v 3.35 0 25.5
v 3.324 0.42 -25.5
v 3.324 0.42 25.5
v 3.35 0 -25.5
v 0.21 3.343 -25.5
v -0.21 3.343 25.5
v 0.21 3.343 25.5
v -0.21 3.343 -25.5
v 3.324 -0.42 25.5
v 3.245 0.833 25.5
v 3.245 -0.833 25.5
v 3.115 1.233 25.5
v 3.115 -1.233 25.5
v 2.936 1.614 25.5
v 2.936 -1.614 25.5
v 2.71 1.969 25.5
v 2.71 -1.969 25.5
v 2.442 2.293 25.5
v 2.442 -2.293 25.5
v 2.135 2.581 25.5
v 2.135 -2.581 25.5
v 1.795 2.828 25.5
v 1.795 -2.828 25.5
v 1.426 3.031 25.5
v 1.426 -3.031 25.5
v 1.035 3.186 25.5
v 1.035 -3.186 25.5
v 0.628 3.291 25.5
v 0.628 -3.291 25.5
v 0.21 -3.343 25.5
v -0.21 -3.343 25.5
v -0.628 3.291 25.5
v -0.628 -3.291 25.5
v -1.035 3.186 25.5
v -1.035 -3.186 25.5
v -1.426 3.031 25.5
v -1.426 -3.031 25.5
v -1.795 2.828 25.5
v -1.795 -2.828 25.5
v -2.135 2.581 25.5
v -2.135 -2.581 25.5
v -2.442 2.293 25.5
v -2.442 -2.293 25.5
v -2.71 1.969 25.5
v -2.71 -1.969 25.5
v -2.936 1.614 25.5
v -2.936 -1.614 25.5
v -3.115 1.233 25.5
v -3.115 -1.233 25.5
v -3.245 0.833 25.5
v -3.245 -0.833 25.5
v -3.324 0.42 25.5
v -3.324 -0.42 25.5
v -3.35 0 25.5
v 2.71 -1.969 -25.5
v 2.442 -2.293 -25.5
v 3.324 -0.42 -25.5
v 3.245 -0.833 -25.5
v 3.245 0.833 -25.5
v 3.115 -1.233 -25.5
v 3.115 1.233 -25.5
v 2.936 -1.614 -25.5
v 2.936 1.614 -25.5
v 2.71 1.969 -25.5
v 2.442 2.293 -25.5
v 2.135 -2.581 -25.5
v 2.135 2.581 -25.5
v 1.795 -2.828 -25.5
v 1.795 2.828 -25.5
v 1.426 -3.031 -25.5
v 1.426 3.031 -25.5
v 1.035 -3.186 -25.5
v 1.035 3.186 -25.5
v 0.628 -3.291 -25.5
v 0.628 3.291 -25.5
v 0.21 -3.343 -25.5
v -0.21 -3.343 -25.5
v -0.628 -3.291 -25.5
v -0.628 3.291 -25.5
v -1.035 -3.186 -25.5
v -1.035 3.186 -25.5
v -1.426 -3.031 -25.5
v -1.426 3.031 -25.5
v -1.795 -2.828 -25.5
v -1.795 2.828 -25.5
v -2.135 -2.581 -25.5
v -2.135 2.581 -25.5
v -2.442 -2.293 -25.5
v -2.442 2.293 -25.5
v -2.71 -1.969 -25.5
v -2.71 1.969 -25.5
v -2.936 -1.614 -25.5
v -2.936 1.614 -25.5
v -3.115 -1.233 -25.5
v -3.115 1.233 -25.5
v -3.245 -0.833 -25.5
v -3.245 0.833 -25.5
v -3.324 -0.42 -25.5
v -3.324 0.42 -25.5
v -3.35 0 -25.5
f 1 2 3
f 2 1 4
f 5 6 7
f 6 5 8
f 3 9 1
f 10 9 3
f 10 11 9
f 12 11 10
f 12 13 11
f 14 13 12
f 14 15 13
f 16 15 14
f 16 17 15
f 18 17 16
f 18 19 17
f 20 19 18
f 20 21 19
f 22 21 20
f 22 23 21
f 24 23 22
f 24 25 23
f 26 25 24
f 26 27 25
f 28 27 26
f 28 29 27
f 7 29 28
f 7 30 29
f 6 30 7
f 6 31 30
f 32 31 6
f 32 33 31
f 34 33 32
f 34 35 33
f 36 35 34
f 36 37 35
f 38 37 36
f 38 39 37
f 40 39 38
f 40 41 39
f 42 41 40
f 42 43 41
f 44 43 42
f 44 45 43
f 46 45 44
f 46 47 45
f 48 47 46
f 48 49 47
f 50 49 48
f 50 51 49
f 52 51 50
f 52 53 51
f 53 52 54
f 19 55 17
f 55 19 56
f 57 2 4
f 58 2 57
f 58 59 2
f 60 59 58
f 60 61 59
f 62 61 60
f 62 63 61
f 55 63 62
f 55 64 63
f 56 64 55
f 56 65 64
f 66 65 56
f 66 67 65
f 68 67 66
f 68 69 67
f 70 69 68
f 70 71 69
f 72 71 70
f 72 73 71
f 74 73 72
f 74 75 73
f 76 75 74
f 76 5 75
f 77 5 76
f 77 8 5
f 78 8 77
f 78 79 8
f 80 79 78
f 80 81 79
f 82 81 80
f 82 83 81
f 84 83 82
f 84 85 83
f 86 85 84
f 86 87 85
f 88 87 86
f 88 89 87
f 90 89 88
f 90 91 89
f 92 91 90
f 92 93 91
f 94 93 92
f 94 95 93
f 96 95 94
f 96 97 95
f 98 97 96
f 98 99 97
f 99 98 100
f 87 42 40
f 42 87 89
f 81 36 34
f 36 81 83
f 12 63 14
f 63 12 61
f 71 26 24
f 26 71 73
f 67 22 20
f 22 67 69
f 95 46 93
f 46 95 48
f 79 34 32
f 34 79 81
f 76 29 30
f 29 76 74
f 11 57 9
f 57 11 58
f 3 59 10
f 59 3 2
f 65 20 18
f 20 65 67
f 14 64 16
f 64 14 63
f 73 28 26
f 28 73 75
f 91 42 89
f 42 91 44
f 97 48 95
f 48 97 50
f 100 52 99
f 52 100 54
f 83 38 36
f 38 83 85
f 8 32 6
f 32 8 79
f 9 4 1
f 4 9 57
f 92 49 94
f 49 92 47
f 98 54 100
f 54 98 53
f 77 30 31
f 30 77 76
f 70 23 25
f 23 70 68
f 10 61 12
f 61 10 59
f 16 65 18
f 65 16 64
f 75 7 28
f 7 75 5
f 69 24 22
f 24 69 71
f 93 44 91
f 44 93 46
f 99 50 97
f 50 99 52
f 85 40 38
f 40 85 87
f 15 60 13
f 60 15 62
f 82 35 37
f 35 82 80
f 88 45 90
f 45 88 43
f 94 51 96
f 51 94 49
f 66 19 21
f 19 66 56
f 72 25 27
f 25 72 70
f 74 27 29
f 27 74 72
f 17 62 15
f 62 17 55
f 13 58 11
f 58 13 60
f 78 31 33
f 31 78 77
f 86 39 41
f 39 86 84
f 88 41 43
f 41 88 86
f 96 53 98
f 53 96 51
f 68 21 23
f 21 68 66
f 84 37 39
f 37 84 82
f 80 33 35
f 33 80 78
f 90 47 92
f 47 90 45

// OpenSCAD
$fn = 50;


difference() {
	union() {
		translate(v = [0, 0, -25.5000000000]) {
			cylinder(h = 51, r = 3.3500000000);
		}
	}
	union() {
		translate(v = [0, 0, -100.0000000000]) {
			cylinder(h = 200, r = 0);
		}
	}
}
